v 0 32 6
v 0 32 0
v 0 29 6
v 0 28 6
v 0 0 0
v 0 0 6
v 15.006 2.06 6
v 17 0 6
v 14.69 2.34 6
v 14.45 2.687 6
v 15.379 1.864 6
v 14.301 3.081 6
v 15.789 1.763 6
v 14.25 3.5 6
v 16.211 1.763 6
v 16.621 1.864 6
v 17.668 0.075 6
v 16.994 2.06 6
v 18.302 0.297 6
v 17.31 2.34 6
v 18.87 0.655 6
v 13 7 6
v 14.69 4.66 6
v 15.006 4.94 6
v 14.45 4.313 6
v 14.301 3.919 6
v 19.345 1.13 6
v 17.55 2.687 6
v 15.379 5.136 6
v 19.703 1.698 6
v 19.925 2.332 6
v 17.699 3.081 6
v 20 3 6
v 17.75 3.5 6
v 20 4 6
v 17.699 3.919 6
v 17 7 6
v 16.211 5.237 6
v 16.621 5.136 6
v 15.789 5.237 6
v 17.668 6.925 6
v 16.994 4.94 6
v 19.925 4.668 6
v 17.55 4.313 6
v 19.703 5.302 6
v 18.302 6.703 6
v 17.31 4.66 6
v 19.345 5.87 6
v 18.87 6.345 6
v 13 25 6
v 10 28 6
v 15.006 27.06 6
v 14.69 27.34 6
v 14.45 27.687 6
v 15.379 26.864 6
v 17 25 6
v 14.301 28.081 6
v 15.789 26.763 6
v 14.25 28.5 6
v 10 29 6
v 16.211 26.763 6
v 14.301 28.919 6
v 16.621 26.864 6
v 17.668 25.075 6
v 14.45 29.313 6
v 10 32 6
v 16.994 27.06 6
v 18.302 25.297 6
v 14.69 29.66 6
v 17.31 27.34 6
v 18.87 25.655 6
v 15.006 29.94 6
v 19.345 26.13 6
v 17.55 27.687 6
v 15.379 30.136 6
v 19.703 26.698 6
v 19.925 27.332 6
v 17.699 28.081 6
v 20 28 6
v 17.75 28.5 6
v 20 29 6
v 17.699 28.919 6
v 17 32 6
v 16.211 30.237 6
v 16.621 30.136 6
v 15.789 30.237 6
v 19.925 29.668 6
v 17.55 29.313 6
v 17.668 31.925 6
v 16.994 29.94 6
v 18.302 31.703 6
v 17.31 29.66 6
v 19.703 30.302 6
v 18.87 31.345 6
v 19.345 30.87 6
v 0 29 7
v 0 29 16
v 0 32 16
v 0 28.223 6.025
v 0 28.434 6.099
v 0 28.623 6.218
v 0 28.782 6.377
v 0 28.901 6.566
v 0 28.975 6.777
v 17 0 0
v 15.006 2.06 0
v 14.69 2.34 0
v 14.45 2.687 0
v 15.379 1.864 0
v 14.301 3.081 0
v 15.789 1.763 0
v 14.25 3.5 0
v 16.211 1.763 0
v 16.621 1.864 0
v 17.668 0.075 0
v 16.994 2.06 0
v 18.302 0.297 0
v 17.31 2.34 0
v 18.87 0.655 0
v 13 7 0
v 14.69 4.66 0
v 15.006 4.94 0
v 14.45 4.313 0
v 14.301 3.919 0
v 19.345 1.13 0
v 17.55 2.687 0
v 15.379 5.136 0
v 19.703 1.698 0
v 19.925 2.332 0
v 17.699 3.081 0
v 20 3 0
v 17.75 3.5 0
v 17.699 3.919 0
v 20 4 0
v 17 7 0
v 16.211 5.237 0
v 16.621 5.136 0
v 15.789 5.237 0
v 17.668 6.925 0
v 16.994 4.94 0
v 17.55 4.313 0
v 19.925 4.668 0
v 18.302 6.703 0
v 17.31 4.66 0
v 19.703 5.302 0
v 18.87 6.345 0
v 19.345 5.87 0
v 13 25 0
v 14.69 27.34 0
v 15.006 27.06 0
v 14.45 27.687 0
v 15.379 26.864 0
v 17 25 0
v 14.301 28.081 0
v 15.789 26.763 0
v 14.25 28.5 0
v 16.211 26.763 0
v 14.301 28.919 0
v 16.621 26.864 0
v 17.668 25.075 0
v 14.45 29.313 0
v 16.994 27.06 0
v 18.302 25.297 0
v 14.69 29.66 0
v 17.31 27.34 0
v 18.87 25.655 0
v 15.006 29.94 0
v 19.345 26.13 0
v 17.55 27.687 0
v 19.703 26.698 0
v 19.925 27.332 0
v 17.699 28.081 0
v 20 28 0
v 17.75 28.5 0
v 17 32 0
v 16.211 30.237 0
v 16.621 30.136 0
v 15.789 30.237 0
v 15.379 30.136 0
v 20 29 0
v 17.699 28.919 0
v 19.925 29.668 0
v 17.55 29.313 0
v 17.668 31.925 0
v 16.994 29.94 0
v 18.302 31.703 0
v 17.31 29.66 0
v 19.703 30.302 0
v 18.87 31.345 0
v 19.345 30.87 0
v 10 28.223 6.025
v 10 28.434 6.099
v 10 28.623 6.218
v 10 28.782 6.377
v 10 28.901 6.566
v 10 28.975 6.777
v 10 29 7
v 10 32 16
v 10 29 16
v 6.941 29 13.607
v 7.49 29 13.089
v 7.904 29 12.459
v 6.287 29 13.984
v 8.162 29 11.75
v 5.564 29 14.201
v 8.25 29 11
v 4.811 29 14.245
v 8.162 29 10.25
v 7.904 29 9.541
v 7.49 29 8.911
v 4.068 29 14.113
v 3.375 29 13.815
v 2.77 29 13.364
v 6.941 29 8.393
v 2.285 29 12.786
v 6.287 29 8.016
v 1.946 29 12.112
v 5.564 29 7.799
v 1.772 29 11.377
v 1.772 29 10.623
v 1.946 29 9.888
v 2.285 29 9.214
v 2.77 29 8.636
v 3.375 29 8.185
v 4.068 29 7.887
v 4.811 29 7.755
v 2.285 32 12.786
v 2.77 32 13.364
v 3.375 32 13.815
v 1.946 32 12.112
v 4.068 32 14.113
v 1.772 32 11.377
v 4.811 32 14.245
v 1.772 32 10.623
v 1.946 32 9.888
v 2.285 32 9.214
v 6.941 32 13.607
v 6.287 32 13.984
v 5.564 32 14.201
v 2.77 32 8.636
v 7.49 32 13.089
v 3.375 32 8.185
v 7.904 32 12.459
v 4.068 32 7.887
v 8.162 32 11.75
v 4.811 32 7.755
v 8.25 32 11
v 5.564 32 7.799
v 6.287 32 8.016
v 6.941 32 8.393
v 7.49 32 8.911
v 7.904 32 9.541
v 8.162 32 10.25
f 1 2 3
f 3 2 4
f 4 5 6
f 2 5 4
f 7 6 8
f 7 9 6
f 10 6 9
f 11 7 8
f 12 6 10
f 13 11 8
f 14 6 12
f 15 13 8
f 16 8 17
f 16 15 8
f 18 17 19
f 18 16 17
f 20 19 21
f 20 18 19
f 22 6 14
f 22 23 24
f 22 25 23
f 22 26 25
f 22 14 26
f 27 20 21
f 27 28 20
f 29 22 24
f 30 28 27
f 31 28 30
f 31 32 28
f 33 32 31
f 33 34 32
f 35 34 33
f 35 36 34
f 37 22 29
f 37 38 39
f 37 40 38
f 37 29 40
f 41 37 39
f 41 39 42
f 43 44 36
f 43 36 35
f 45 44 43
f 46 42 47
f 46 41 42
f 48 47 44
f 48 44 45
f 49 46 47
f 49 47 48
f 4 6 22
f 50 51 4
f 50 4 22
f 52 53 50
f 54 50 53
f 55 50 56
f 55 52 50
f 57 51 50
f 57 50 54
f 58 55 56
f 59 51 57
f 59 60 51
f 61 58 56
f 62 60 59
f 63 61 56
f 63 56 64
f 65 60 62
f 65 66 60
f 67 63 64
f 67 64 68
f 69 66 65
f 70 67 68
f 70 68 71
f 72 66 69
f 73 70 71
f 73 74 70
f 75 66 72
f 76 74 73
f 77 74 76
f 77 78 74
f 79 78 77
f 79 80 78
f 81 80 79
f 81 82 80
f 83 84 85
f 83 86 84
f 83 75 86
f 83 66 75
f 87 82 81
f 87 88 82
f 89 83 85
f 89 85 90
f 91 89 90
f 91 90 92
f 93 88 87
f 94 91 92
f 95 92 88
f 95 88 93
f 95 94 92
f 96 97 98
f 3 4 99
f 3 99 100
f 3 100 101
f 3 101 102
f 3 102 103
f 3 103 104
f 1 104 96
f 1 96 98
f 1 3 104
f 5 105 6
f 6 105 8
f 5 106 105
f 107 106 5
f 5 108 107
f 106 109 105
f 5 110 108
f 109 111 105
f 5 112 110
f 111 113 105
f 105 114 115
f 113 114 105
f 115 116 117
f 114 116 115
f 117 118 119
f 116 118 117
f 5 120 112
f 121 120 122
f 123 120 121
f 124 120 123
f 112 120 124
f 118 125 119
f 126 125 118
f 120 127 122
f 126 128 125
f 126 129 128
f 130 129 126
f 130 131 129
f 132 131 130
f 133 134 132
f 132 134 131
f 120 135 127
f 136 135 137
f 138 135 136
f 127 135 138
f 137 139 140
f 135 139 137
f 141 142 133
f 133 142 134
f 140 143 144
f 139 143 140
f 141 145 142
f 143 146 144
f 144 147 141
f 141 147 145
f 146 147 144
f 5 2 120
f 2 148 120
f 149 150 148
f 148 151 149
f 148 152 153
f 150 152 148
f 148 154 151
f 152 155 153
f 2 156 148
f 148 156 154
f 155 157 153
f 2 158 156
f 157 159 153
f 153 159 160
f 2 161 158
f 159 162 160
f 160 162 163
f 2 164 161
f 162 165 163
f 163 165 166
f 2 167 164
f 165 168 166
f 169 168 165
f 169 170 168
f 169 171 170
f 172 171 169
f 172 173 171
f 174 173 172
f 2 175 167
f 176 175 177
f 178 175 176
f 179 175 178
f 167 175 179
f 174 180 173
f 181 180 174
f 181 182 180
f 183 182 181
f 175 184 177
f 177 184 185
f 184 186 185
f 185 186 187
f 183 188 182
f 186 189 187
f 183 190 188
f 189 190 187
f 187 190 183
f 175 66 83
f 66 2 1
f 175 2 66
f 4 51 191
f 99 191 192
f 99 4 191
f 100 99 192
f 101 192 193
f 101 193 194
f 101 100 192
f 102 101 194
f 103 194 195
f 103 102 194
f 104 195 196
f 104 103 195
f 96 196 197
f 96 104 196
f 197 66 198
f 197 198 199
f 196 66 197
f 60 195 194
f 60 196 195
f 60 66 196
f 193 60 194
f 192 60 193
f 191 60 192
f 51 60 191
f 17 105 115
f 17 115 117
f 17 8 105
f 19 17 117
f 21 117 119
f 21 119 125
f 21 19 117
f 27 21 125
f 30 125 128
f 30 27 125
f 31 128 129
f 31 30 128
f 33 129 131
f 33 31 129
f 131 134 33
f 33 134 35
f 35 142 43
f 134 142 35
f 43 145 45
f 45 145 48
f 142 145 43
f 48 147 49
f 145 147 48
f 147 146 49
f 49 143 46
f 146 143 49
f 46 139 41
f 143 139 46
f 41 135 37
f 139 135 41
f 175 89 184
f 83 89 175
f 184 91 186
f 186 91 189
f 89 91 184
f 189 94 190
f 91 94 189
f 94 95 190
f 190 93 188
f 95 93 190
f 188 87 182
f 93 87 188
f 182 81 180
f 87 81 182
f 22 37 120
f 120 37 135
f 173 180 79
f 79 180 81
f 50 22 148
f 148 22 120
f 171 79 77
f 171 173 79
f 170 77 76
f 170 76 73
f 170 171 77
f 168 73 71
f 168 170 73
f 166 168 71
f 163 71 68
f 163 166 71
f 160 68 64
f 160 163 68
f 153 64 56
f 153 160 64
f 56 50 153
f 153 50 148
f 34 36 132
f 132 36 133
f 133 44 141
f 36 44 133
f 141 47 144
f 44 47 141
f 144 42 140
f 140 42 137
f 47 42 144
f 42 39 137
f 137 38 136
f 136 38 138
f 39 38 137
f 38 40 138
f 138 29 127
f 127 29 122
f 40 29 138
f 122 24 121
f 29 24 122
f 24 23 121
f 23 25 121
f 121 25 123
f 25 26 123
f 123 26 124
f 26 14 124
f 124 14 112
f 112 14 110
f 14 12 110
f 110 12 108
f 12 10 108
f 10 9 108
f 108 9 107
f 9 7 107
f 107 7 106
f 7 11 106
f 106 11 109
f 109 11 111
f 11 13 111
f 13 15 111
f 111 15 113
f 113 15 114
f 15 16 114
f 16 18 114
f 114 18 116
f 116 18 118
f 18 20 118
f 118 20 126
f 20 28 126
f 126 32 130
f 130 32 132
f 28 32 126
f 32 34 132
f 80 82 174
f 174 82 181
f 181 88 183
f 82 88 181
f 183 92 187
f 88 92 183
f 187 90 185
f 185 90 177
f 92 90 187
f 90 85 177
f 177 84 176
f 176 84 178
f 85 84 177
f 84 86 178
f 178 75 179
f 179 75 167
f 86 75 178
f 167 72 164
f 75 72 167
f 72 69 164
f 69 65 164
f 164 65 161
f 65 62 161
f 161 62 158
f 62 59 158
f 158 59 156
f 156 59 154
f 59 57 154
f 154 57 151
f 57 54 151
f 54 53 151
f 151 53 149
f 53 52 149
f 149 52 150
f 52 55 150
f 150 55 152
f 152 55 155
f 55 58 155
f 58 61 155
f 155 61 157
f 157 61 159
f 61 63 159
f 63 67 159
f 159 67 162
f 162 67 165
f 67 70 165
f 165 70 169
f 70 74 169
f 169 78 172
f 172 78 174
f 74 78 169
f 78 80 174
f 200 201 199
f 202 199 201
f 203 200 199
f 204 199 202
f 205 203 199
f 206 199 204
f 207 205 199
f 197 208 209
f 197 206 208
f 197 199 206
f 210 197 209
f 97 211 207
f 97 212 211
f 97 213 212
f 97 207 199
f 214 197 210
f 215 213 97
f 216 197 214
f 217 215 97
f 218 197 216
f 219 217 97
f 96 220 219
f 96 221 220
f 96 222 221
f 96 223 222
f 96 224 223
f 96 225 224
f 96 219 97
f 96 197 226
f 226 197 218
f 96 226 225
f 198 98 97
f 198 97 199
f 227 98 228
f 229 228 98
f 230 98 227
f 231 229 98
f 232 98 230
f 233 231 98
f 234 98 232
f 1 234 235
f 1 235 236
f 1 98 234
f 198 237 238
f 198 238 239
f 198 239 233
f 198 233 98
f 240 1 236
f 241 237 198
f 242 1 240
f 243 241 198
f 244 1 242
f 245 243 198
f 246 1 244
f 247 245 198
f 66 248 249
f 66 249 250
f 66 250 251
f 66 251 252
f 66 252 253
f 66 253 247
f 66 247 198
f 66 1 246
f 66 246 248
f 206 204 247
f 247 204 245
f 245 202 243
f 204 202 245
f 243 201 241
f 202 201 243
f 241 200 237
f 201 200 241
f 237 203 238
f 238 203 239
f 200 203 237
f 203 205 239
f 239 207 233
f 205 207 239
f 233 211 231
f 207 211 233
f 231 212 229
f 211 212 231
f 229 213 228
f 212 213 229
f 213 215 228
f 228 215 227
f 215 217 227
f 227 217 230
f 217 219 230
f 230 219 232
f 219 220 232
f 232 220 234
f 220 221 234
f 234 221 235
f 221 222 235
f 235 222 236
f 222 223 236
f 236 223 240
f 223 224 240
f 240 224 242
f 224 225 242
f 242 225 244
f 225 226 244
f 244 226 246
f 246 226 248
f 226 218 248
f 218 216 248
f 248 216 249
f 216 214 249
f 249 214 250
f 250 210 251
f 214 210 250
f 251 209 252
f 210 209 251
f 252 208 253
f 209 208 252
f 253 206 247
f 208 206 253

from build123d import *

# Parameters (mm, degrees)
SKETCH_W        = 20
SKETCH_H        = 32
PAD_DEPTH       = 6
SKETCH001_R     = 1.75
POCKET_DEPTH    = 6.001
SKETCH002_W     = 7
SKETCH002_H     = 18
POCKET001_DEPTH = 6.001
FILLET_R        = 3
SKETCH003_W     = 10
SKETCH003_H     = 3
PAD001_DEPTH    = 10
SKETCH004_R     = 3.25
POCKET002_DEPTH = 3.001
FILLET001_R     = 1


with BuildPart() as part:
    # Sketch → Pad (new body)
    with BuildSketch(Plane.XY):
        with Locations((10, 16)):
            Rectangle(SKETCH_W, SKETCH_H)
    extrude(amount=PAD_DEPTH)

    # Sketch001 (on Face6 of Pad) → Pocket (cut, through all)
    with BuildSketch(Plane.XY.offset(6)):
        with Locations((16, 28.5)):
            Circle(SKETCH001_R)
        with Locations((16, 3.5)):
            Circle(SKETCH001_R)
    extrude(amount=-POCKET_DEPTH, mode=Mode.SUBTRACT)

    # Sketch002 (on Face5 of Pocket) → Pocket001 (cut, through all)
    with BuildSketch(Plane.XY.offset(6)):
        with Locations((16.5, 16)):
            Rectangle(SKETCH002_W, SKETCH002_H)
    extrude(amount=-POCKET001_DEPTH, mode=Mode.SUBTRACT)

    # Fillet
    fillet_edges = [part.edges().sort_by_distance(p)[0] for p in [
        (20, 32, 3),
        (20, 25, 3),
        (20, 7, 3),
        (20, 0, 3),
    ]]
    fillet(fillet_edges, radius=FILLET_R)

    # Sketch003 (on Face5 of Fillet) → Pad001 (join)
    with BuildSketch(Plane.XY.offset(6)):
        with Locations((5, 30.5)):
            Rectangle(SKETCH003_W, SKETCH003_H)
    extrude(amount=PAD001_DEPTH)

    # Sketch004 (on Face18 of Pad001) → Pocket002 (cut, through all)
    with BuildSketch(Plane.XZ.offset(-29)):
        with Locations((5, 11)):
            Circle(SKETCH004_R)
    extrude(amount=-POCKET002_DEPTH, mode=Mode.SUBTRACT)

    # Fillet001
    fillet001_edges = [part.edges().sort_by_distance(p)[0] for p in [
        (5, 29, 6),
    ]]
    fillet(fillet001_edges, radius=FILLET001_R)


solid = part.part
